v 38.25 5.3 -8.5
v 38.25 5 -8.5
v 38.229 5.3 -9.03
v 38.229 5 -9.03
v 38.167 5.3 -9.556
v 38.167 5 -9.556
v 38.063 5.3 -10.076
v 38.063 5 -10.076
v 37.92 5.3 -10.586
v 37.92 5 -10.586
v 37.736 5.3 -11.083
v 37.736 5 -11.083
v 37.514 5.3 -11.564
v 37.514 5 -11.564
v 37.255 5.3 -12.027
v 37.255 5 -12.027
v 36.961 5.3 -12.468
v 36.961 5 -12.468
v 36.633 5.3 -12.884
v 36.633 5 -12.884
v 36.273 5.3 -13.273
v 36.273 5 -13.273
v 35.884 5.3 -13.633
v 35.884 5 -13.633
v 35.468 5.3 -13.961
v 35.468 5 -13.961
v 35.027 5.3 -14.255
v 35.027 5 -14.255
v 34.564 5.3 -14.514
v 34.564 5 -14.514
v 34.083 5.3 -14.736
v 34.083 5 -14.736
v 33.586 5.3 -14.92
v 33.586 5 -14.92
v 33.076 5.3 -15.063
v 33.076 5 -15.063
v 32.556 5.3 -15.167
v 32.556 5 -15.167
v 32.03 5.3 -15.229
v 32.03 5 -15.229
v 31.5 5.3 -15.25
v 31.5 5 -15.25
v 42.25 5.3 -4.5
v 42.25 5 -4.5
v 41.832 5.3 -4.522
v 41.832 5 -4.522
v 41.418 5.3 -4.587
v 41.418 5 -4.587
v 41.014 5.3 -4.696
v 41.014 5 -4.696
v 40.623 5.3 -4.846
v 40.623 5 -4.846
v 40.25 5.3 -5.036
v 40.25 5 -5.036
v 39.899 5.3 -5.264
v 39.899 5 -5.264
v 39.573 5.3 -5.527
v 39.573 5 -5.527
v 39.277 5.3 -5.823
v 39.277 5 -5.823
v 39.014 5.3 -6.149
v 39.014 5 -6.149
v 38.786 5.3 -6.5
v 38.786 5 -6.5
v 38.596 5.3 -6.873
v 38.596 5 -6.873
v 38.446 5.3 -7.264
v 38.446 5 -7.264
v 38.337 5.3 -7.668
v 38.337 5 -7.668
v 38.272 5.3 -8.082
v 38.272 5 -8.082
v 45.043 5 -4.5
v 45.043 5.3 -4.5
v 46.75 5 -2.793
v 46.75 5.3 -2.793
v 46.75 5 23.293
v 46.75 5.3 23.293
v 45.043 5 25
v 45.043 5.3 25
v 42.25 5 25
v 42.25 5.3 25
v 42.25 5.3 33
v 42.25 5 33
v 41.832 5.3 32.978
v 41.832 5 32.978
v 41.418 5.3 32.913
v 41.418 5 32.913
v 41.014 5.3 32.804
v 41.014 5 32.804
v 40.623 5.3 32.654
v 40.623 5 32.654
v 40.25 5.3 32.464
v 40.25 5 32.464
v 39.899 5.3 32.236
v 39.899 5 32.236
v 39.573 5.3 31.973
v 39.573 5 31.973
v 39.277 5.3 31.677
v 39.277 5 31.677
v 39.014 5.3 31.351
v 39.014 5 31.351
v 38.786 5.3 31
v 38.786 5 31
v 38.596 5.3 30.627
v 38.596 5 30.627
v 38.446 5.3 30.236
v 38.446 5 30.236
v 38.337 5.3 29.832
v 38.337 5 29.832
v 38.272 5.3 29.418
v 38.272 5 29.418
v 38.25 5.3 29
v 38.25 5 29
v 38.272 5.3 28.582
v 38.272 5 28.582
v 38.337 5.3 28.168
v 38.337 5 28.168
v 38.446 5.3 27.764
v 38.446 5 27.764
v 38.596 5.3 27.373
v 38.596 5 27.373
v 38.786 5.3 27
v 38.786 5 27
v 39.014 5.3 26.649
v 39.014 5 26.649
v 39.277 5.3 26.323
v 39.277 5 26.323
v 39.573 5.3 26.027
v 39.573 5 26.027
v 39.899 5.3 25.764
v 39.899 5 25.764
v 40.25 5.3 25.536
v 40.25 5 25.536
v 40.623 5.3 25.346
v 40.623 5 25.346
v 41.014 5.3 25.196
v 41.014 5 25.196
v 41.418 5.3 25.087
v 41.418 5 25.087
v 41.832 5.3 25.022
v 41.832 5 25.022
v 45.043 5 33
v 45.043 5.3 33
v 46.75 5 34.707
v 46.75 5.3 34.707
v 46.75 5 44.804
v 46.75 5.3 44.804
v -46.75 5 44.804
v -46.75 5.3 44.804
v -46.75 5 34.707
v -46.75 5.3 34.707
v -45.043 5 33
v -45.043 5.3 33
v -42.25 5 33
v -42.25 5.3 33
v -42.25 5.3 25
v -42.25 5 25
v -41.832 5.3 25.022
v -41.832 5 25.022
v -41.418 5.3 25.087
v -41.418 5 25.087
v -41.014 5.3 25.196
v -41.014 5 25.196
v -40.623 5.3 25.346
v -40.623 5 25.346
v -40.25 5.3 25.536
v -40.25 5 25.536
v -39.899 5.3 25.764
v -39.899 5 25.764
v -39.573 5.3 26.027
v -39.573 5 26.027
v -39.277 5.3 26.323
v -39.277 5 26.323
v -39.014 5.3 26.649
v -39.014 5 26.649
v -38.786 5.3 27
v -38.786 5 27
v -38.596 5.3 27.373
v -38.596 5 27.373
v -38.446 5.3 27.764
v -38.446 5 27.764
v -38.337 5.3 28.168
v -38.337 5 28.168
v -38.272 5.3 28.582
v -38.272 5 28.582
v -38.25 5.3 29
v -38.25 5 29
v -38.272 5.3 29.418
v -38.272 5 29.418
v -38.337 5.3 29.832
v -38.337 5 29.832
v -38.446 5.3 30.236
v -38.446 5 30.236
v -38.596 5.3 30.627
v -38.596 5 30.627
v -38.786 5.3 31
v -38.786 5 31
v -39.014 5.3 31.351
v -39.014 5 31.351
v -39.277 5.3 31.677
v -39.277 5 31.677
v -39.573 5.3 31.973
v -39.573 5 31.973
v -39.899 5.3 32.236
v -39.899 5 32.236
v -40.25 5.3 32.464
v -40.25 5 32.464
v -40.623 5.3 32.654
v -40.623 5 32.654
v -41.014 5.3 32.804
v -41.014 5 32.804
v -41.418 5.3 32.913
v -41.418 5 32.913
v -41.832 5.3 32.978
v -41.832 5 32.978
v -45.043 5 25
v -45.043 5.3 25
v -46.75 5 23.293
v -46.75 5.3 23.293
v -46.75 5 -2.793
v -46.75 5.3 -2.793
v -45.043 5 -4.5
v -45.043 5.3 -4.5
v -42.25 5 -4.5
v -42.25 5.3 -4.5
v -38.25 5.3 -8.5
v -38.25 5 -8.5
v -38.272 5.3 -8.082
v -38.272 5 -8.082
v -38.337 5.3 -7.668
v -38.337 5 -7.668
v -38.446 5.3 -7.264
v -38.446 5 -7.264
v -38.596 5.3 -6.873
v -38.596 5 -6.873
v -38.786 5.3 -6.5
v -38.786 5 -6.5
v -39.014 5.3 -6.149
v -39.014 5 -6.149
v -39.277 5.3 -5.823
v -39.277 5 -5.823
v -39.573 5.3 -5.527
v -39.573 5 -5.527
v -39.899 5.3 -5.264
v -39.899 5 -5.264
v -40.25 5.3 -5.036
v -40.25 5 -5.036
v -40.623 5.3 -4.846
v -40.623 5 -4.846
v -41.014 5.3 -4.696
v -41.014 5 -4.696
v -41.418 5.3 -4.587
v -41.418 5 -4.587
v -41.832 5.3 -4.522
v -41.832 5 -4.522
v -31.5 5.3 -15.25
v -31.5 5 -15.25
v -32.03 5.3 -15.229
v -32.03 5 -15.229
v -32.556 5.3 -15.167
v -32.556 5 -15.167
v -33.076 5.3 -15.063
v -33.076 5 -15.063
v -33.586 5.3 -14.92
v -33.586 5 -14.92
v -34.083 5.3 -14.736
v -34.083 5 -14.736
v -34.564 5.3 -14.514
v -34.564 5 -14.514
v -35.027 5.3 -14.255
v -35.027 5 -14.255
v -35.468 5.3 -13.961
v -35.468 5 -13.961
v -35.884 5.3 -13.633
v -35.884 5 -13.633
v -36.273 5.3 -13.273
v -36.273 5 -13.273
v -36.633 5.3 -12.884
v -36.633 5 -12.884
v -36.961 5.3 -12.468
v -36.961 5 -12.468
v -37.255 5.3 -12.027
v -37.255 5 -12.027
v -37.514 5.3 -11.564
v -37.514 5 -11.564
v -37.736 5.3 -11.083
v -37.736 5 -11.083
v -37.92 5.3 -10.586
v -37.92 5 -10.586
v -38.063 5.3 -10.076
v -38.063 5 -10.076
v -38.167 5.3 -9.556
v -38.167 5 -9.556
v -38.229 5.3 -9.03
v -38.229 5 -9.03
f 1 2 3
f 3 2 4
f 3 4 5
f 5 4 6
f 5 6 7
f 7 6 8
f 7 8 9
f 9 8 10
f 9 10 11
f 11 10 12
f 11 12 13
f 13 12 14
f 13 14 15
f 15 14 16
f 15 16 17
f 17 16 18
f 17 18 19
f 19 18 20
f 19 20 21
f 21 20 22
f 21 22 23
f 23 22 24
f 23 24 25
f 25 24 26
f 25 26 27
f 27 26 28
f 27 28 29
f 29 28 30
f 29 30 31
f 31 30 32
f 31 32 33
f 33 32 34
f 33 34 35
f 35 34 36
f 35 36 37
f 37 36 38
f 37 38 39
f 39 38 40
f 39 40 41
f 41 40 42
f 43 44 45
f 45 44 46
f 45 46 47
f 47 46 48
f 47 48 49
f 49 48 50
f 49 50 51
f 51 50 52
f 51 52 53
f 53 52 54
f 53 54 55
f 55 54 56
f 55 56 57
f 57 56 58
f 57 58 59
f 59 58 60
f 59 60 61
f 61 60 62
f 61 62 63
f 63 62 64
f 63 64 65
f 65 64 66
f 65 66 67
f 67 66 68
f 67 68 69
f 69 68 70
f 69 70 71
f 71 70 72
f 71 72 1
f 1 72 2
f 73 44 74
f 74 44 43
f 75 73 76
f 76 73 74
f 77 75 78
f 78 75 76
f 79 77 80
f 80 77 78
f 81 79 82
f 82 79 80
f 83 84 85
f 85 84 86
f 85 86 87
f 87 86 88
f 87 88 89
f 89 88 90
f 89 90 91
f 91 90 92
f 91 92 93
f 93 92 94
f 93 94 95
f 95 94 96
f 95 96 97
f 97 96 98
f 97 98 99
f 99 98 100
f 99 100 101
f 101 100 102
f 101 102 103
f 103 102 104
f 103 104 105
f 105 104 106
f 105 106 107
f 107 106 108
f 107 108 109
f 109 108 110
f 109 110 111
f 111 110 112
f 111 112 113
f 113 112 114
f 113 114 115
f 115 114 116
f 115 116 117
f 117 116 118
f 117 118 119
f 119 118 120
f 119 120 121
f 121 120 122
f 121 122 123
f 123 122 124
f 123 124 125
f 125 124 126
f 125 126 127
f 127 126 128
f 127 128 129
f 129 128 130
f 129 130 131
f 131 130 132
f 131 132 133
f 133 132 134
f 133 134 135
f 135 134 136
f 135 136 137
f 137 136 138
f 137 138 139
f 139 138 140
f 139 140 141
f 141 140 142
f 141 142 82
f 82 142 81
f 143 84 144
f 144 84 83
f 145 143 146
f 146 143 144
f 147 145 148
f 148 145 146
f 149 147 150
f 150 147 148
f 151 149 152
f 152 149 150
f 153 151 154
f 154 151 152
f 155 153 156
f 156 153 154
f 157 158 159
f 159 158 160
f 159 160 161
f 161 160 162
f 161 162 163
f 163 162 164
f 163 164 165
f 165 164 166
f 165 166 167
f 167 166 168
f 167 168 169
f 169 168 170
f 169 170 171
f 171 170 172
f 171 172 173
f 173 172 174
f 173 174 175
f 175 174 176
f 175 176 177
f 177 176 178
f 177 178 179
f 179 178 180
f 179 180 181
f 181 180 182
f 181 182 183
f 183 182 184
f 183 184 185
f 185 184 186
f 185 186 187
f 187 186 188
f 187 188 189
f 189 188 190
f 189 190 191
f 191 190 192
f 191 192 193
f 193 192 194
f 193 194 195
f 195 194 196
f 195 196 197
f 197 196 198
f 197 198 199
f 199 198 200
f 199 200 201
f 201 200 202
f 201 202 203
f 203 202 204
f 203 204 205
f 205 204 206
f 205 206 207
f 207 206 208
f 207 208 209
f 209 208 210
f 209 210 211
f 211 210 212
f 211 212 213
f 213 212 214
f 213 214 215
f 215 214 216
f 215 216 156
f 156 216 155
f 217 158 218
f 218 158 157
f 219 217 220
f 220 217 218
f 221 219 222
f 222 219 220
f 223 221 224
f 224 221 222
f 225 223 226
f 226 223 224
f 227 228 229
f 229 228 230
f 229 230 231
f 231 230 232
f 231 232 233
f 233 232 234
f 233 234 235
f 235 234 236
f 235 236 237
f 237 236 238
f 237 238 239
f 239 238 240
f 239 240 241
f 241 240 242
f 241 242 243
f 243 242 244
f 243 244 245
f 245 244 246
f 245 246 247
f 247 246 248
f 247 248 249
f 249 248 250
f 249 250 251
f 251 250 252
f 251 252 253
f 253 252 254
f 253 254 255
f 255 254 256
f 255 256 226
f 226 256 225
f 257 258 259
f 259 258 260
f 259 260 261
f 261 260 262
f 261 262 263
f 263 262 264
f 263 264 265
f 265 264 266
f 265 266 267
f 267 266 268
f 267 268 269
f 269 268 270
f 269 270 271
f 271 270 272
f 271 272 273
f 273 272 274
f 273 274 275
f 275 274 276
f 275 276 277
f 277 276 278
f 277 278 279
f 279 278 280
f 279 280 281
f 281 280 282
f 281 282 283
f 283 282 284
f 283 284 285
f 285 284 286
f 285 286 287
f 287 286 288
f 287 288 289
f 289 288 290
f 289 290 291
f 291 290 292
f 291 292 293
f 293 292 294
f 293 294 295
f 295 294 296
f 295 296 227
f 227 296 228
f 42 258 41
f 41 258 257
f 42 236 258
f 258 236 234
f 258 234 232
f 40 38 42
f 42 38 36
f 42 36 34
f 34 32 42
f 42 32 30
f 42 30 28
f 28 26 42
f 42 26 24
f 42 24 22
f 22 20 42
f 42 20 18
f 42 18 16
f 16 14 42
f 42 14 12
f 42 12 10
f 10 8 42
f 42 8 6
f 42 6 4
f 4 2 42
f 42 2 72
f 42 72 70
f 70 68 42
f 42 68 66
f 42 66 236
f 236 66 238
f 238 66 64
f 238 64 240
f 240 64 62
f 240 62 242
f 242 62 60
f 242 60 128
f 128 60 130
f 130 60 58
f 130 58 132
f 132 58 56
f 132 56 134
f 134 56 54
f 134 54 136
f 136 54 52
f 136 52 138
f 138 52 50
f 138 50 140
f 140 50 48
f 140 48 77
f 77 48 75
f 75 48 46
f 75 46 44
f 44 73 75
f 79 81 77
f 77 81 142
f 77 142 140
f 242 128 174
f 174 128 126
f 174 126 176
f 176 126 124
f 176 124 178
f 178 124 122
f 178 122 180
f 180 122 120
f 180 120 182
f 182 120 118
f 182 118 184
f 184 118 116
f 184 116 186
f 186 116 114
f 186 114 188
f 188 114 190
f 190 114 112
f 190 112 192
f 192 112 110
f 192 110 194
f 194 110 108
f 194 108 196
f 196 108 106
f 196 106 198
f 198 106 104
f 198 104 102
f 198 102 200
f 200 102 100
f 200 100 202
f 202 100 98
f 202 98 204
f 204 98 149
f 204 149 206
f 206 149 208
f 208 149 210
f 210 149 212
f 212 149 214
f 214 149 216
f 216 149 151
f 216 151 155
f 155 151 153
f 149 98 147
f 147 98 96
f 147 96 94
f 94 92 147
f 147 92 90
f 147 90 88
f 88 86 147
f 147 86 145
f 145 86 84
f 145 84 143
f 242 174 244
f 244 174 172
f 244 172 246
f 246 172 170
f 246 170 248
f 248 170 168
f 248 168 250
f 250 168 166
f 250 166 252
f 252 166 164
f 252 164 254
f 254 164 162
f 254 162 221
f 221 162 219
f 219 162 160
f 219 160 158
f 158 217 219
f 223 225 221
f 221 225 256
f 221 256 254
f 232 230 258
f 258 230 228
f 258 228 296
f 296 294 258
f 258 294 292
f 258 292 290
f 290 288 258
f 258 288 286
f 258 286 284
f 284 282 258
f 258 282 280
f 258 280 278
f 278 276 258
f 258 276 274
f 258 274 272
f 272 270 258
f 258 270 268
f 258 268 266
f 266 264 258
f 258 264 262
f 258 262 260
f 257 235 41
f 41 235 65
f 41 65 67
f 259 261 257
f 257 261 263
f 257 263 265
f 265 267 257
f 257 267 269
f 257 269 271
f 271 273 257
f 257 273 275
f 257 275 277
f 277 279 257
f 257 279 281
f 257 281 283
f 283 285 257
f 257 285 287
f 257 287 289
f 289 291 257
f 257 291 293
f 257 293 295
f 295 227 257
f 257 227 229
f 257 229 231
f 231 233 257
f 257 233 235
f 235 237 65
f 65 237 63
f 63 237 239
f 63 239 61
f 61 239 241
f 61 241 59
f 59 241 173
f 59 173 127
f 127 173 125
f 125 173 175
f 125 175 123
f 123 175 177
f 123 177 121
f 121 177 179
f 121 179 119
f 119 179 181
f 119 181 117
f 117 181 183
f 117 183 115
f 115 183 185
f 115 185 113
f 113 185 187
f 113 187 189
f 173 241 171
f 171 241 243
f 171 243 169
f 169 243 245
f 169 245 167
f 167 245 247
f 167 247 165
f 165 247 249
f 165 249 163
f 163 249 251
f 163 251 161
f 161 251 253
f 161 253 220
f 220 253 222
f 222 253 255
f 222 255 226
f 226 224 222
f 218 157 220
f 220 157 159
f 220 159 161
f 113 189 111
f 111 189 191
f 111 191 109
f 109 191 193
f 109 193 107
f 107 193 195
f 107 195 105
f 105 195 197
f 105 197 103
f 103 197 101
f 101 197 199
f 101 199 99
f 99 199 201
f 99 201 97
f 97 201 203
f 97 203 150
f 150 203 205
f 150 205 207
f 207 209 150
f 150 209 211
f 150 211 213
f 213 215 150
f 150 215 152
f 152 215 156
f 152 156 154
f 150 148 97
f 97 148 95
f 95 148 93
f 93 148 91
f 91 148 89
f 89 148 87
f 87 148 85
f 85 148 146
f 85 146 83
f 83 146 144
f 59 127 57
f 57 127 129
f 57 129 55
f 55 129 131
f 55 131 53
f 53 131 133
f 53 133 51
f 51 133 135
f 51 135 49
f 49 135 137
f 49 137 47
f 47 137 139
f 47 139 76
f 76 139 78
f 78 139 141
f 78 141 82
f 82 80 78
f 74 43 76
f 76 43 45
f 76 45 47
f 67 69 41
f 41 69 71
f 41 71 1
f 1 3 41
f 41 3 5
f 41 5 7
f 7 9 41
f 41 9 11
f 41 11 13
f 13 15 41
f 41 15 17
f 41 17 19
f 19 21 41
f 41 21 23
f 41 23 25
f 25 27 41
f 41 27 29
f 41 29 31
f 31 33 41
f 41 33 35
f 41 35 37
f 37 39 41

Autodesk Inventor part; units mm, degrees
ref_plane "YZ Plane" through (0, 0, 0) normal (1, 0, 0) x (0, 1, 0)
ref_plane "XZ Plane" through (0, 0, 0) normal (0, 1, 0) x (-1, 0, 0)
ref_plane "Pracovní rovina16" through (0, 5, 0) normal (0, -1, 0) x (1, 0, 0)
sketch "Náčrt80" plane through (0, 5, 0) normal (0, -1, 0) x (1, 0, 0)
  circle A0 centre (-22, -24.1875) radius 1.85 projected
  circle A1 centre (22, -24.1875) radius 1.85 projected
  circle A2 centre (-42.25, -8.5) radius 1.85 projected
  circle A3 centre (-42.25, 29) radius 1.85 projected
  circle A4 centre (42.25, -8.5) radius 1.85 projected
  circle A5 centre (42.25, 29) radius 1.85 projected
  arc A6 (-38.75, -8.5) -> (-42.25, -5) centre (-42.25, -8.5) ccw projected
  line L0 (-45.25, -5) -> (-42.25, -5) projected
  line L1 (-47.25, -3) -> (-45.25, -5) projected
  line L2 (-47.25, 23.5) -> (-47.25, -3) projected
  line L3 (-45.25, 25.5) -> (-47.25, 23.5) projected
  line L4 (-42.25, 25.5) -> (-45.25, 25.5) projected
  arc A7 (-42.25, 25.5) -> (-42.25, 32.5) centre (-42.25, 29) ccw projected
  line L5 (-45.25, 32.5) -> (-42.25, 32.5) projected
  line L6 (-47.25, 34.5) -> (-45.25, 32.5) projected
  line L7 (-47.25, 45.3044) -> (-47.25, 34.5) projected
  line L8 (47.25, 45.3044) -> (-47.25, 45.3044) projected
  line L9 (47.25, 34.5) -> (47.25, 45.3044) projected
  line L10 (45.25, 32.5) -> (47.25, 34.5) projected
  line L11 (42.25, 32.5) -> (45.25, 32.5) projected
  arc A8 (42.25, 32.5) -> (42.25, 25.5) centre (42.25, 29) ccw projected
  line L12 (45.25, 25.5) -> (42.25, 25.5) projected
  line L13 (47.25, 23.5) -> (45.25, 25.5) projected
  line L14 (47.25, -3) -> (47.25, 23.5) projected
  line L15 (45.25, -5) -> (47.25, -3) projected
  line L16 (42.25, -5) -> (45.25, -5) projected
  arc A9 (42.25, -5) -> (38.75, -8.5) centre (42.25, -8.5) ccw projected
  arc A10 (31.5, -15.75) -> (38.75, -8.5) centre (31.5, -8.5) ccw projected
  line L17 (31.5, -15.75) -> (-31.5, -15.75) projected
  arc A11 (-38.75, -8.5) -> (-31.5, -15.75) centre (-31.5, -8.5) ccw projected
  line L18 (-5, -41.375) -> (-5, -35.875) projected
  arc A12 (5, -35.875) -> (-5, -35.875) centre (0, -35.875) ccw projected
  line L19 (5, -41.375) -> (5, -35.875) projected
  line L20 (5, -41.375) -> (-5, -41.375) projected
  arc A13 (-20.6747, -48.0519) -> (-23.3253, -48.0519) centre (-22, -44.8125) ccw projected
  line L21 (-0.0392, -48.0519) -> (-20.6747, -48.0519) projected
  line L22 (-2.825, -46.4435) -> (-0.0392, -48.0519) projected
  line L23 (-2.825, -43.1815) -> (-2.825, -46.4435) projected
  line L24 (0, -41.5505) -> (-2.825, -43.1815) projected
  line L25 (2.825, -43.1815) -> (0, -41.5505) projected
  line L26 (2.825, -46.4435) -> (2.825, -43.1815) projected
  line L27 (0.0392, -48.0519) -> (2.825, -46.4435) projected
  line L28 (20.6747, -48.0519) -> (0.0392, -48.0519) projected
  arc A14 (23.3253, -48.0519) -> (20.6747, -48.0519) centre (22, -44.8125) ccw projected
  line L29 (27, -48.0519) -> (23.3253, -48.0519) projected
  line L30 (27, -19.25) -> (27, -48.0519) projected
  line L31 (49.75, -19.25) -> (27, -19.25) projected
  line L32 (49.75, 48.4103) -> (49.75, -19.25) projected
  line L33 (-49.75, 48.4103) -> (49.75, 48.4103) projected
  line L34 (-49.75, -19.25) -> (-49.75, 48.4103) projected
  line L35 (-27, -19.25) -> (-49.75, -19.25) projected
  line L36 (-27, -48.0519) -> (-27, -19.25) projected
  line L37 (-23.3253, -48.0519) -> (-27, -48.0519) projected
  line L38 (-31.5, -15.25) -> (31.5, -15.25)
  arc A15 (31.5, -15.25) -> (38.25, -8.5) centre (31.5, -8.5) ccw
  arc A16 (42.25, -4.5) -> (38.25, -8.5) centre (42.25, -8.5) ccw
  line L39 (42.25, -4.5) -> (45.0429, -4.5)
  line L40 (45.0429, -4.5) -> (46.75, -2.7929)
  line L41 (46.75, -2.7929) -> (46.75, 23.2929)
  line L42 (46.75, 23.2929) -> (45.0429, 25)
  line L43 (45.0429, 25) -> (42.25, 25)
  arc A17 (42.25, 33) -> (42.25, 25) centre (42.25, 29) ccw
  line L44 (42.25, 33) -> (45.0429, 33)
  line L45 (45.0429, 33) -> (46.75, 34.7071)
  line L46 (46.75, 34.7071) -> (46.75, 44.8044)
  line L47 (46.75, 44.8044) -> (-46.75, 44.8044)
  line L48 (-46.75, 44.8044) -> (-46.75, 34.7071)
  line L49 (-46.75, 34.7071) -> (-45.0429, 33)
  line L50 (-45.0429, 33) -> (-42.25, 33)
  arc A18 (-42.25, 25) -> (-42.25, 33) centre (-42.25, 29) ccw
  line L51 (-42.25, 25) -> (-45.0429, 25)
  line L52 (-45.0429, 25) -> (-46.75, 23.2929)
  line L53 (-46.75, 23.2929) -> (-46.75, -2.7929)
  line L54 (-46.75, -2.7929) -> (-45.0429, -4.5)
  line L55 (-45.0429, -4.5) -> (-42.25, -4.5)
  arc A19 (-38.25, -8.5) -> (-42.25, -4.5) centre (-42.25, -8.5) ccw
  arc A20 (-38.25, -8.5) -> (-31.5, -15.25) centre (-31.5, -8.5) ccw
  point P0 (0, 0)
  dimension "d487" = 0.5
extrude "Vysunutí84" add sketch "Náčrt80" against normal blind 0.3 contours A20 A19 L55 L54 L53 L52 L51 A18 L50 L49 L48 L47 L46 L45 L44 A17 L43 L42 L41 L40 L39 A16 A15 L38
properties part number "oddělovací plocha"
